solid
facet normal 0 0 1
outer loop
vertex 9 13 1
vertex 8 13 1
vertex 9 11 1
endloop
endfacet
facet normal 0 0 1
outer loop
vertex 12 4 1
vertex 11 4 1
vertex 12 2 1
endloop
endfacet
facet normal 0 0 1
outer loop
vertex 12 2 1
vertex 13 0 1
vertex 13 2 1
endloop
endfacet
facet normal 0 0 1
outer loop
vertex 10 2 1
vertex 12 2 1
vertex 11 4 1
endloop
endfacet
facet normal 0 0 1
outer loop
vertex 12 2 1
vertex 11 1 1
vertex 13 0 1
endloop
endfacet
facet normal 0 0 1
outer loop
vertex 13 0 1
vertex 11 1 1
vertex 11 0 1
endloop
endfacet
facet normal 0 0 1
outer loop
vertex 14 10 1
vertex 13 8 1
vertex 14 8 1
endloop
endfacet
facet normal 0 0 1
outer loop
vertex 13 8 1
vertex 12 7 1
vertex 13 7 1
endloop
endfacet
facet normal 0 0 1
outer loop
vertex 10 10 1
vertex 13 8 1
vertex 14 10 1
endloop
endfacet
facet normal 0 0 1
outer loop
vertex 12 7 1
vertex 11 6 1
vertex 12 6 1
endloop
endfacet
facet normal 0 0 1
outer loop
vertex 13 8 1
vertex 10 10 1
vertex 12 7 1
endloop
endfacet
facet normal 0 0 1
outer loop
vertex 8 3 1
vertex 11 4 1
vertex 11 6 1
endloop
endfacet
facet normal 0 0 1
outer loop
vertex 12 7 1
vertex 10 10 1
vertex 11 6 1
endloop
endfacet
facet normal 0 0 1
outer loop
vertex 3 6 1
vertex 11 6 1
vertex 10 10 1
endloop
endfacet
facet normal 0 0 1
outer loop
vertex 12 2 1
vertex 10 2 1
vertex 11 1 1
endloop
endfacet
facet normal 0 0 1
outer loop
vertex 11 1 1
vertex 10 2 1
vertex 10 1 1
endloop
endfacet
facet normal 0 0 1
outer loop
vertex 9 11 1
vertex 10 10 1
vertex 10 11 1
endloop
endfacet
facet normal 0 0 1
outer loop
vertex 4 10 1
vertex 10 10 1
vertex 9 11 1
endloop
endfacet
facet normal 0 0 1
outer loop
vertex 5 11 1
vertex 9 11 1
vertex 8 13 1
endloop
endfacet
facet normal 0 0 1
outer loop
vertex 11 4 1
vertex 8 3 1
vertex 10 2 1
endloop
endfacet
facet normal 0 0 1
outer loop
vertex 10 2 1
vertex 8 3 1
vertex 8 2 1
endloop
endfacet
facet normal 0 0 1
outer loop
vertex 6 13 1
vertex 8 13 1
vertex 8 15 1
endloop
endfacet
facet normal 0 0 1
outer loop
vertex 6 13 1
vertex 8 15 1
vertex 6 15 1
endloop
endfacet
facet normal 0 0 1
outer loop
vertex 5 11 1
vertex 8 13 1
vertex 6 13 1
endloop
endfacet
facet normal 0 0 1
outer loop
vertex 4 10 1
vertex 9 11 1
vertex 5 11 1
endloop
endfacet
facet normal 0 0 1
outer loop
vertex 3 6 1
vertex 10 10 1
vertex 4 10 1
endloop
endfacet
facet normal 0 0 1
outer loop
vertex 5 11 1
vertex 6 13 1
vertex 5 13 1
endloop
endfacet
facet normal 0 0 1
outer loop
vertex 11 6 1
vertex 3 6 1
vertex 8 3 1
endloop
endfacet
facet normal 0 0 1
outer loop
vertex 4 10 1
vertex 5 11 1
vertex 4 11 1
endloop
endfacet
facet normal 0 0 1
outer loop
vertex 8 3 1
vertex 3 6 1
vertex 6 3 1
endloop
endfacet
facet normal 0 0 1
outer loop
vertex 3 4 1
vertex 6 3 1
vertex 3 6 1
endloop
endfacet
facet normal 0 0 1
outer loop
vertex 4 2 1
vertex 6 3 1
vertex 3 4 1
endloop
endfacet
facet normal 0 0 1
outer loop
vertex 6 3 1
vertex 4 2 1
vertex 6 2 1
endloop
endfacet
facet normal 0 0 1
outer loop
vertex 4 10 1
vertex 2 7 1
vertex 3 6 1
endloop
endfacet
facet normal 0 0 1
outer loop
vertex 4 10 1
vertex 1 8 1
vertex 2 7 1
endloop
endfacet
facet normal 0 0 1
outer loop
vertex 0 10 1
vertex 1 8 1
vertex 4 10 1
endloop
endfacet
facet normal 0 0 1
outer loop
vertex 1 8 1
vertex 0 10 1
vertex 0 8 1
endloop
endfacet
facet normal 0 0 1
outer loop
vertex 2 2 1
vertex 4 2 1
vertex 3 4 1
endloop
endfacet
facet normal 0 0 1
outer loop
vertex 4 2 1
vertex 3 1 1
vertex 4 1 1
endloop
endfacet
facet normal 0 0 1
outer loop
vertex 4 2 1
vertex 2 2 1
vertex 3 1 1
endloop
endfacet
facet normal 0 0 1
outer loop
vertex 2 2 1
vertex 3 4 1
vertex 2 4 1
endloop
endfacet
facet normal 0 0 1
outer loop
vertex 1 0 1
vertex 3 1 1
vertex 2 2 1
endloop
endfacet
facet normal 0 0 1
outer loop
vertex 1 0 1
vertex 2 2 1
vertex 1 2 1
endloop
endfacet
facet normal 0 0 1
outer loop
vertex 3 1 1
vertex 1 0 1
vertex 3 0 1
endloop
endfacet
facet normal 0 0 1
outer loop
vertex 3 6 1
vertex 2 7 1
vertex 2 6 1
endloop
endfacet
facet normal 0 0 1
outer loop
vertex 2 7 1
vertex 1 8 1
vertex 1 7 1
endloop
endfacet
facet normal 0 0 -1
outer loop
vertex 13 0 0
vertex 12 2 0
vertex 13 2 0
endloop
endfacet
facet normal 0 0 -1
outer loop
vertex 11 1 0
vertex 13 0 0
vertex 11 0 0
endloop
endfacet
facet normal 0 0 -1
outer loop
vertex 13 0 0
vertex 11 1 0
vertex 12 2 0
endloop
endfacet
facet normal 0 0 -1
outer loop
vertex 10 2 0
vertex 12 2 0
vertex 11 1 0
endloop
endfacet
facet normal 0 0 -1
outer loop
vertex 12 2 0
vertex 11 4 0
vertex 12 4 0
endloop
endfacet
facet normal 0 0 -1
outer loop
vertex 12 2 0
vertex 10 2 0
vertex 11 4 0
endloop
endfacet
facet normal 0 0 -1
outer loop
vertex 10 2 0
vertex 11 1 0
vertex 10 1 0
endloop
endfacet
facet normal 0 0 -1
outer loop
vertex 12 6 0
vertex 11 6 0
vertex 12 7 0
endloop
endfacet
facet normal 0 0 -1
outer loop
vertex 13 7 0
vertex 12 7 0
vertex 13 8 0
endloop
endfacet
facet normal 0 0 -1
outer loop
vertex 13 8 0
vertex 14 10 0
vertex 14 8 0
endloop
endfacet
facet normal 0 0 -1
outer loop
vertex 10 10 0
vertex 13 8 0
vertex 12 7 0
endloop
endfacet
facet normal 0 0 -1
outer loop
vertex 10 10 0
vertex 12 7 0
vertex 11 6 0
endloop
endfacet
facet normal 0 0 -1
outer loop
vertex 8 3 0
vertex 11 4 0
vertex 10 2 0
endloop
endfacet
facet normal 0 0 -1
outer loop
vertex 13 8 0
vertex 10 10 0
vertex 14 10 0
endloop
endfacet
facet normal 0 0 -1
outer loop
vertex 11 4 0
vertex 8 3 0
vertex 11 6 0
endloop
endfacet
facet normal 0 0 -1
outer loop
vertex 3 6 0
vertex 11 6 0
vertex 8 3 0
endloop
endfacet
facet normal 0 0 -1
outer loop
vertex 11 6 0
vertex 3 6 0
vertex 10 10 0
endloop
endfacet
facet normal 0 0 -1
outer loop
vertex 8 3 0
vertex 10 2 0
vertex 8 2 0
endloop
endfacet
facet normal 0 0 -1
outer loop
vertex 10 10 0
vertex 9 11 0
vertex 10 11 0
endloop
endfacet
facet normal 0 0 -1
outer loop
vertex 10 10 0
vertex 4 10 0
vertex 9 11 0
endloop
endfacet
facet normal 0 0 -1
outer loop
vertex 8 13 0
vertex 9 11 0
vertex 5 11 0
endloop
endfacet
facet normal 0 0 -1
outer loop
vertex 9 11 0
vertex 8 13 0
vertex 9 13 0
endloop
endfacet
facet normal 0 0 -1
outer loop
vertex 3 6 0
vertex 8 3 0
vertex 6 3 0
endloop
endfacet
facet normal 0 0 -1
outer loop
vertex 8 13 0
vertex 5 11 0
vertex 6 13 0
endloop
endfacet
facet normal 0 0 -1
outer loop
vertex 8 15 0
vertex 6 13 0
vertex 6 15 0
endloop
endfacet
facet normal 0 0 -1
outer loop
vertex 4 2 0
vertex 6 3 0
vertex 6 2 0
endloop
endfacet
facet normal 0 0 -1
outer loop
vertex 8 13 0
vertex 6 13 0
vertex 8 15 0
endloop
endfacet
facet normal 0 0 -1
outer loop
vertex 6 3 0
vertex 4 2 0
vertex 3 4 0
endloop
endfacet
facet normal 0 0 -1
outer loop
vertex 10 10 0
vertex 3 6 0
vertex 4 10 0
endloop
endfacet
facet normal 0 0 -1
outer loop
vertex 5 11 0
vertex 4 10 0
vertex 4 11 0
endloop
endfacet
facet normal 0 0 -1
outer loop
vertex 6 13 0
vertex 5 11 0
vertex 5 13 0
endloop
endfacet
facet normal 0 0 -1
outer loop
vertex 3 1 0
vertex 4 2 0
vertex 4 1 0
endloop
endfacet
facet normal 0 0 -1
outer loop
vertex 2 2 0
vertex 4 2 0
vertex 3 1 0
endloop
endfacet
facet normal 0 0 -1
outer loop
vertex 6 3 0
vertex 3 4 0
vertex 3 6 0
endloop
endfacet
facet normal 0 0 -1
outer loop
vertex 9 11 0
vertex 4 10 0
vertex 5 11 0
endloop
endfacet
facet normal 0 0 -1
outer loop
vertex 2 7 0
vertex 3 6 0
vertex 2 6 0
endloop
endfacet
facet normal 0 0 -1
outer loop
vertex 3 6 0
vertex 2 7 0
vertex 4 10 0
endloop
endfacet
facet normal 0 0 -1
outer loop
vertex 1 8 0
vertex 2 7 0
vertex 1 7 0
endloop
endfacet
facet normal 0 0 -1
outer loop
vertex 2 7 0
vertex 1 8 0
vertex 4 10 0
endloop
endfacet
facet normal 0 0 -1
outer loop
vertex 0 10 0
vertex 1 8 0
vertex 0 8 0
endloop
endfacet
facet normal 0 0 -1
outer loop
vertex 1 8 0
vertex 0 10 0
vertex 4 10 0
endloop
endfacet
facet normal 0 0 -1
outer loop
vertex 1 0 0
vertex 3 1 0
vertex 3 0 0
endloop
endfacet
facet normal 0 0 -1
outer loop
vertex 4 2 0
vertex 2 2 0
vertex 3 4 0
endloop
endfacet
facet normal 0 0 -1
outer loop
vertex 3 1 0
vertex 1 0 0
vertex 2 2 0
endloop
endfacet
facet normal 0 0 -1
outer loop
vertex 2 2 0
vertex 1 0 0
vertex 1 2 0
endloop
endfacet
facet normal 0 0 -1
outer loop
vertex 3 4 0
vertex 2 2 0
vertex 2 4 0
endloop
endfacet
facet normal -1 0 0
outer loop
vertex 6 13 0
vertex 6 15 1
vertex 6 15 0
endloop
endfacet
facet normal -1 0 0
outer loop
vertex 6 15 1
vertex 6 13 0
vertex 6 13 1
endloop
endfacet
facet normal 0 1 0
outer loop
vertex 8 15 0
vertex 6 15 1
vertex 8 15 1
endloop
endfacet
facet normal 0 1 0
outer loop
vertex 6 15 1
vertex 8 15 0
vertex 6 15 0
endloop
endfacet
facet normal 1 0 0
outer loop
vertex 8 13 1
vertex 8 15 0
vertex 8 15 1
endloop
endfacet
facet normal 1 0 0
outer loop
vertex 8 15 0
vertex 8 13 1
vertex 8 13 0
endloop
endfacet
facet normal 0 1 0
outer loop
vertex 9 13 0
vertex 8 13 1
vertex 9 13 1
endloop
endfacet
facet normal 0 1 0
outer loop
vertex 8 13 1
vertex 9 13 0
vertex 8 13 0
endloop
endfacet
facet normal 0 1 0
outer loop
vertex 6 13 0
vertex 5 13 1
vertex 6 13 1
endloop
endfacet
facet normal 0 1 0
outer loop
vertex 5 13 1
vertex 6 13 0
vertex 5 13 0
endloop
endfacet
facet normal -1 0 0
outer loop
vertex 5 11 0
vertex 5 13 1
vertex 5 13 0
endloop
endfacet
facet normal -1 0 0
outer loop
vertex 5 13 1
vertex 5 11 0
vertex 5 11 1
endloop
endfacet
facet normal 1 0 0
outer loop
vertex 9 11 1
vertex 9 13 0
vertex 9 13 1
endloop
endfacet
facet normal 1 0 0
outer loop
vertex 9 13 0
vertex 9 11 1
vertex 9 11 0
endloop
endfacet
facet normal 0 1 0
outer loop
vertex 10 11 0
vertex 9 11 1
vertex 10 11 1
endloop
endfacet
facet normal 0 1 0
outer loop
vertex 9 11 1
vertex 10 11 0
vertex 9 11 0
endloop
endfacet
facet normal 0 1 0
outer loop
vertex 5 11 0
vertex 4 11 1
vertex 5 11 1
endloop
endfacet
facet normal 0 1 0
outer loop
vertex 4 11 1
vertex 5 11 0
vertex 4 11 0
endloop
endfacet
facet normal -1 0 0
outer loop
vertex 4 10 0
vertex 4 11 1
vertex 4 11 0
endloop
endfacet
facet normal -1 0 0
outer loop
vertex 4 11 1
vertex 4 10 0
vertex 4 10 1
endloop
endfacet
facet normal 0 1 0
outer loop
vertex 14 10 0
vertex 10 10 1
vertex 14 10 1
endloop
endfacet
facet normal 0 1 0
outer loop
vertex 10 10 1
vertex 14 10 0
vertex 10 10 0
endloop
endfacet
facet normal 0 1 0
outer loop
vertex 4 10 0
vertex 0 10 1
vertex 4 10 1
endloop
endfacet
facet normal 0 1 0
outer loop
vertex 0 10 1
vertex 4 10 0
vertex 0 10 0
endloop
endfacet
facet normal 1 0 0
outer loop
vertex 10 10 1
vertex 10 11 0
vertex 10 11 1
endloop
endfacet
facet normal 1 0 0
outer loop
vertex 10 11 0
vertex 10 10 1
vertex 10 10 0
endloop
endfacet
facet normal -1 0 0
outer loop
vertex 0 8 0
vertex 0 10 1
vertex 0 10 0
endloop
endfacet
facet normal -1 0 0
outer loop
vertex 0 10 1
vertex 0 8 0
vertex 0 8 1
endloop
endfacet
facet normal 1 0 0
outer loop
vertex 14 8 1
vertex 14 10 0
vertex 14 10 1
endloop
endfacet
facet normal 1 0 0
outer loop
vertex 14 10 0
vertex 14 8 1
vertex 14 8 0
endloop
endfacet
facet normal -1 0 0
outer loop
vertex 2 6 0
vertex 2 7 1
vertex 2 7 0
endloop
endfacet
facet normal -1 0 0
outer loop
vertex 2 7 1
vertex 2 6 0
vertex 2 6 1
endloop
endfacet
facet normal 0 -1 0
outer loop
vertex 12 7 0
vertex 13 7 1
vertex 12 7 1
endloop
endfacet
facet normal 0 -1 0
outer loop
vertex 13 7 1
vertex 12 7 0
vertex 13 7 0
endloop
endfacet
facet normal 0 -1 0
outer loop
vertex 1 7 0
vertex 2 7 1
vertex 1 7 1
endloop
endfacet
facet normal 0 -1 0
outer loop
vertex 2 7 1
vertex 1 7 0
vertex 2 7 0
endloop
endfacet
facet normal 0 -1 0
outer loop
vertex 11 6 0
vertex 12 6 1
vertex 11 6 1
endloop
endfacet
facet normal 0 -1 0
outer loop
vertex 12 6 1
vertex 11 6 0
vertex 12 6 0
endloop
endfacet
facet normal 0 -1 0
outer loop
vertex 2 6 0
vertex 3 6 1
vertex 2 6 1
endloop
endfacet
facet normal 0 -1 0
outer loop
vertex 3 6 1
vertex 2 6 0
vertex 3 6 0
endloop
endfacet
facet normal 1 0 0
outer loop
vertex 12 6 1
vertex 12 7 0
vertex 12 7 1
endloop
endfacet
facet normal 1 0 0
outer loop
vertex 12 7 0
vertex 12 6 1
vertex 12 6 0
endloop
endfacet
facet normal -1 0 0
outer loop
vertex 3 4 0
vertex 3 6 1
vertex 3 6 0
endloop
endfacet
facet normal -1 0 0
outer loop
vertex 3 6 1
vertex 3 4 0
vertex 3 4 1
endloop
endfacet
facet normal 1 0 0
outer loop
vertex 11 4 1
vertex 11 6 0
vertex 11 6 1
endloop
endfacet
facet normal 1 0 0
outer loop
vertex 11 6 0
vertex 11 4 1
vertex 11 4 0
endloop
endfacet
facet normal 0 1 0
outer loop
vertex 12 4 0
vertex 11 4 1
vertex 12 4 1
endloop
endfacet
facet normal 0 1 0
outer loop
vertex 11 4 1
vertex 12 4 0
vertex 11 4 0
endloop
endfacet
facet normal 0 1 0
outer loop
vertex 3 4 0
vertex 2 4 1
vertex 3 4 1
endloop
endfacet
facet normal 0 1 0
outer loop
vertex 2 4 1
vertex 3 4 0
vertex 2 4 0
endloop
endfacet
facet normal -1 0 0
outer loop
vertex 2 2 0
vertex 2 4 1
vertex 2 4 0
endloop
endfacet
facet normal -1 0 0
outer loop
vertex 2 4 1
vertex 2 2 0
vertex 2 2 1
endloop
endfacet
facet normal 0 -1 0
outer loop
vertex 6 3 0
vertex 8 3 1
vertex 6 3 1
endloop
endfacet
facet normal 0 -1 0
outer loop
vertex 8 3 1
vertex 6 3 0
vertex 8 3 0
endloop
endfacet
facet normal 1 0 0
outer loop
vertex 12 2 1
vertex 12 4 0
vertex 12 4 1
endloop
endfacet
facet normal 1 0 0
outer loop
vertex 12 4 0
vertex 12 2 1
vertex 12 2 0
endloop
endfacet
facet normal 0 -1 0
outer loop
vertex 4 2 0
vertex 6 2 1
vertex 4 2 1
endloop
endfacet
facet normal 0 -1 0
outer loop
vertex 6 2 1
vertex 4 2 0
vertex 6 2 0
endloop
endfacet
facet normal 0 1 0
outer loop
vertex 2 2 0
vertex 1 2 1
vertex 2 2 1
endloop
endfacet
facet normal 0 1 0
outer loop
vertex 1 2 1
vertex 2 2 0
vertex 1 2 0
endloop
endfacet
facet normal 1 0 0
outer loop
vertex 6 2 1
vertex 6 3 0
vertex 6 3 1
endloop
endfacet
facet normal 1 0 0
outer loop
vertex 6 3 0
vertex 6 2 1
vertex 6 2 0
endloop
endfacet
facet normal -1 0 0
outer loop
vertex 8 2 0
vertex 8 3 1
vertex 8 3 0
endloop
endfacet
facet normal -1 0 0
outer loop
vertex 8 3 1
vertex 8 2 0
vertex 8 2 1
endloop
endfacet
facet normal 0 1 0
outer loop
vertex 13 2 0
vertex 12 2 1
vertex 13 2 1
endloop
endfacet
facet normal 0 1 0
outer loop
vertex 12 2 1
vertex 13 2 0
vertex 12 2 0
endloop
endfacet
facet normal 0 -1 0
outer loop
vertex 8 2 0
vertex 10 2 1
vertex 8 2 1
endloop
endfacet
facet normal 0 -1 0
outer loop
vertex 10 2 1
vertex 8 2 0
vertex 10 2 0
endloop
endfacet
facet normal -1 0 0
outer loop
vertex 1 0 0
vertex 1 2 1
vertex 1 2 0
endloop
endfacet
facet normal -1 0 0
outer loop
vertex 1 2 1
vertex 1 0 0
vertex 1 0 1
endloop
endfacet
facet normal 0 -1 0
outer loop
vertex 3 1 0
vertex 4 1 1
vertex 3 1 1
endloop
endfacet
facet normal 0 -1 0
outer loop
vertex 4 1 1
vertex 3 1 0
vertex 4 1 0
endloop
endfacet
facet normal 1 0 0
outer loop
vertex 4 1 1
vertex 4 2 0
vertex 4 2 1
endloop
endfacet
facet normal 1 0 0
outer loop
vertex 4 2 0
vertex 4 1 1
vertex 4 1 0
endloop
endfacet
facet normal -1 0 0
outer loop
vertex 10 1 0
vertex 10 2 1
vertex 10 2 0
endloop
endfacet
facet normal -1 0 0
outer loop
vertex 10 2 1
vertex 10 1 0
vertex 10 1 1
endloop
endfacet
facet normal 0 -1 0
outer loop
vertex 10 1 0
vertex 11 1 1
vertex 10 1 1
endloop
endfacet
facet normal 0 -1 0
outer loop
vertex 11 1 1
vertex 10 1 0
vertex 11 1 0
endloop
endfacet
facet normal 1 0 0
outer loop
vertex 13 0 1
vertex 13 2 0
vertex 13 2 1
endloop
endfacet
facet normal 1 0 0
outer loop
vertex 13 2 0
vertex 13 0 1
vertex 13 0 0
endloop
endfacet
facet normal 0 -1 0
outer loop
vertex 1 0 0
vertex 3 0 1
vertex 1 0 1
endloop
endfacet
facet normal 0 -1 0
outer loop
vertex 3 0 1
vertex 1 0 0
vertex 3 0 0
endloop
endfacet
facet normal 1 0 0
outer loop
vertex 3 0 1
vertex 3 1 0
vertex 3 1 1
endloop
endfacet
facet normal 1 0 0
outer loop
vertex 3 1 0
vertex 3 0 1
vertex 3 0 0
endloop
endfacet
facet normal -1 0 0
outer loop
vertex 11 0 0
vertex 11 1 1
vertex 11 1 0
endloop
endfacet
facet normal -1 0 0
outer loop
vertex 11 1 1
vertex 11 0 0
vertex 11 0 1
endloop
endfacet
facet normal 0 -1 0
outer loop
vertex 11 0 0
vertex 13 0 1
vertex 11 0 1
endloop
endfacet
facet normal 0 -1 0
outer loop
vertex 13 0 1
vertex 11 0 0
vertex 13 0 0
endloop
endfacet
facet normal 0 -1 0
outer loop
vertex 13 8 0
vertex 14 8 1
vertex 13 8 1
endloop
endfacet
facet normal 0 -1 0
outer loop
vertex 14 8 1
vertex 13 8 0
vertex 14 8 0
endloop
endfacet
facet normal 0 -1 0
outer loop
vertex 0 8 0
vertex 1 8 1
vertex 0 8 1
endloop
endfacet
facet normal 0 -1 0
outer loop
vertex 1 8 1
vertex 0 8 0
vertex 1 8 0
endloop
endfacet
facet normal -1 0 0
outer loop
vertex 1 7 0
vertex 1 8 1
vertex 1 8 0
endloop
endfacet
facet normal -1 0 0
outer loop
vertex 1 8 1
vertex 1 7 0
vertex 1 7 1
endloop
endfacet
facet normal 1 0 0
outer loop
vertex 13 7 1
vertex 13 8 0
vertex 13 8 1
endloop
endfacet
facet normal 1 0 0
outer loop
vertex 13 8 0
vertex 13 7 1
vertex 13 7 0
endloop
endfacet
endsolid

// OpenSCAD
/*
 * 3D Pixel Art - Star 1
 * Copyright (c) 2019 Anar Software LLC. < http://anars.com >
 *
 * This program is free software: you can redistribute it and/or modify it under
 * the terms of the GNU General Public License as published by the Free Software
 * Foundation, either version 3 of the License, or (at your option) any later
 * version.
 *
 * This program is distributed in the hope that it will be useful, but WITHOUT
 * ANY WARRANTY; without even the implied warranty of MERCHANTABILITY or FITNESS
 * FOR A PARTICULAR PURPOSE. See the GNU General Public License for more details.
 *
 * You should have received a copy of the GNU General Public License along with
 * this program. If not, see < http://www.gnu.org/licenses/ >
 *
 */

/* [Global] */

/* [Pixel Settings] */

// Pixel Length (X)
pixel_length = 1;

// Pixel Width (Y)
pixel_width = 1;

// Pixel Height (Z)
pixel_height = 1;

/* [Hidden] */

data=[[
     "      XX",
     "      XX",
     "     XXXX",
     "     XXXX",
     "    XXXXXX",
     "XXXXXXXXXXXXXX",
     "XXXXXXXXXXXXXX",
     " XXXXXXXXXXXX",
     "  XXXXXXXXXX",
     "   XXXXXXXX",
     "   XXXXXXXX",
     "  XXXXXXXXXX",
     "  XXXX  XXXX",
     " XXX      XXX",
     " XX        XX"]];

for (z = [0 : len(data) - 1])
    for (y = [0 : len(data[z]) - 1])
        if (len(data[z][y]) > 0)
            for (x = [0 : len(data[z][y]) - 1])
                if (data[z][y][x] == "X")
                    translate([x * pixel_length, (len(data[z]) - 1 - y) * pixel_width, z * pixel_height])
                        cube([pixel_length, pixel_width, pixel_height]);
